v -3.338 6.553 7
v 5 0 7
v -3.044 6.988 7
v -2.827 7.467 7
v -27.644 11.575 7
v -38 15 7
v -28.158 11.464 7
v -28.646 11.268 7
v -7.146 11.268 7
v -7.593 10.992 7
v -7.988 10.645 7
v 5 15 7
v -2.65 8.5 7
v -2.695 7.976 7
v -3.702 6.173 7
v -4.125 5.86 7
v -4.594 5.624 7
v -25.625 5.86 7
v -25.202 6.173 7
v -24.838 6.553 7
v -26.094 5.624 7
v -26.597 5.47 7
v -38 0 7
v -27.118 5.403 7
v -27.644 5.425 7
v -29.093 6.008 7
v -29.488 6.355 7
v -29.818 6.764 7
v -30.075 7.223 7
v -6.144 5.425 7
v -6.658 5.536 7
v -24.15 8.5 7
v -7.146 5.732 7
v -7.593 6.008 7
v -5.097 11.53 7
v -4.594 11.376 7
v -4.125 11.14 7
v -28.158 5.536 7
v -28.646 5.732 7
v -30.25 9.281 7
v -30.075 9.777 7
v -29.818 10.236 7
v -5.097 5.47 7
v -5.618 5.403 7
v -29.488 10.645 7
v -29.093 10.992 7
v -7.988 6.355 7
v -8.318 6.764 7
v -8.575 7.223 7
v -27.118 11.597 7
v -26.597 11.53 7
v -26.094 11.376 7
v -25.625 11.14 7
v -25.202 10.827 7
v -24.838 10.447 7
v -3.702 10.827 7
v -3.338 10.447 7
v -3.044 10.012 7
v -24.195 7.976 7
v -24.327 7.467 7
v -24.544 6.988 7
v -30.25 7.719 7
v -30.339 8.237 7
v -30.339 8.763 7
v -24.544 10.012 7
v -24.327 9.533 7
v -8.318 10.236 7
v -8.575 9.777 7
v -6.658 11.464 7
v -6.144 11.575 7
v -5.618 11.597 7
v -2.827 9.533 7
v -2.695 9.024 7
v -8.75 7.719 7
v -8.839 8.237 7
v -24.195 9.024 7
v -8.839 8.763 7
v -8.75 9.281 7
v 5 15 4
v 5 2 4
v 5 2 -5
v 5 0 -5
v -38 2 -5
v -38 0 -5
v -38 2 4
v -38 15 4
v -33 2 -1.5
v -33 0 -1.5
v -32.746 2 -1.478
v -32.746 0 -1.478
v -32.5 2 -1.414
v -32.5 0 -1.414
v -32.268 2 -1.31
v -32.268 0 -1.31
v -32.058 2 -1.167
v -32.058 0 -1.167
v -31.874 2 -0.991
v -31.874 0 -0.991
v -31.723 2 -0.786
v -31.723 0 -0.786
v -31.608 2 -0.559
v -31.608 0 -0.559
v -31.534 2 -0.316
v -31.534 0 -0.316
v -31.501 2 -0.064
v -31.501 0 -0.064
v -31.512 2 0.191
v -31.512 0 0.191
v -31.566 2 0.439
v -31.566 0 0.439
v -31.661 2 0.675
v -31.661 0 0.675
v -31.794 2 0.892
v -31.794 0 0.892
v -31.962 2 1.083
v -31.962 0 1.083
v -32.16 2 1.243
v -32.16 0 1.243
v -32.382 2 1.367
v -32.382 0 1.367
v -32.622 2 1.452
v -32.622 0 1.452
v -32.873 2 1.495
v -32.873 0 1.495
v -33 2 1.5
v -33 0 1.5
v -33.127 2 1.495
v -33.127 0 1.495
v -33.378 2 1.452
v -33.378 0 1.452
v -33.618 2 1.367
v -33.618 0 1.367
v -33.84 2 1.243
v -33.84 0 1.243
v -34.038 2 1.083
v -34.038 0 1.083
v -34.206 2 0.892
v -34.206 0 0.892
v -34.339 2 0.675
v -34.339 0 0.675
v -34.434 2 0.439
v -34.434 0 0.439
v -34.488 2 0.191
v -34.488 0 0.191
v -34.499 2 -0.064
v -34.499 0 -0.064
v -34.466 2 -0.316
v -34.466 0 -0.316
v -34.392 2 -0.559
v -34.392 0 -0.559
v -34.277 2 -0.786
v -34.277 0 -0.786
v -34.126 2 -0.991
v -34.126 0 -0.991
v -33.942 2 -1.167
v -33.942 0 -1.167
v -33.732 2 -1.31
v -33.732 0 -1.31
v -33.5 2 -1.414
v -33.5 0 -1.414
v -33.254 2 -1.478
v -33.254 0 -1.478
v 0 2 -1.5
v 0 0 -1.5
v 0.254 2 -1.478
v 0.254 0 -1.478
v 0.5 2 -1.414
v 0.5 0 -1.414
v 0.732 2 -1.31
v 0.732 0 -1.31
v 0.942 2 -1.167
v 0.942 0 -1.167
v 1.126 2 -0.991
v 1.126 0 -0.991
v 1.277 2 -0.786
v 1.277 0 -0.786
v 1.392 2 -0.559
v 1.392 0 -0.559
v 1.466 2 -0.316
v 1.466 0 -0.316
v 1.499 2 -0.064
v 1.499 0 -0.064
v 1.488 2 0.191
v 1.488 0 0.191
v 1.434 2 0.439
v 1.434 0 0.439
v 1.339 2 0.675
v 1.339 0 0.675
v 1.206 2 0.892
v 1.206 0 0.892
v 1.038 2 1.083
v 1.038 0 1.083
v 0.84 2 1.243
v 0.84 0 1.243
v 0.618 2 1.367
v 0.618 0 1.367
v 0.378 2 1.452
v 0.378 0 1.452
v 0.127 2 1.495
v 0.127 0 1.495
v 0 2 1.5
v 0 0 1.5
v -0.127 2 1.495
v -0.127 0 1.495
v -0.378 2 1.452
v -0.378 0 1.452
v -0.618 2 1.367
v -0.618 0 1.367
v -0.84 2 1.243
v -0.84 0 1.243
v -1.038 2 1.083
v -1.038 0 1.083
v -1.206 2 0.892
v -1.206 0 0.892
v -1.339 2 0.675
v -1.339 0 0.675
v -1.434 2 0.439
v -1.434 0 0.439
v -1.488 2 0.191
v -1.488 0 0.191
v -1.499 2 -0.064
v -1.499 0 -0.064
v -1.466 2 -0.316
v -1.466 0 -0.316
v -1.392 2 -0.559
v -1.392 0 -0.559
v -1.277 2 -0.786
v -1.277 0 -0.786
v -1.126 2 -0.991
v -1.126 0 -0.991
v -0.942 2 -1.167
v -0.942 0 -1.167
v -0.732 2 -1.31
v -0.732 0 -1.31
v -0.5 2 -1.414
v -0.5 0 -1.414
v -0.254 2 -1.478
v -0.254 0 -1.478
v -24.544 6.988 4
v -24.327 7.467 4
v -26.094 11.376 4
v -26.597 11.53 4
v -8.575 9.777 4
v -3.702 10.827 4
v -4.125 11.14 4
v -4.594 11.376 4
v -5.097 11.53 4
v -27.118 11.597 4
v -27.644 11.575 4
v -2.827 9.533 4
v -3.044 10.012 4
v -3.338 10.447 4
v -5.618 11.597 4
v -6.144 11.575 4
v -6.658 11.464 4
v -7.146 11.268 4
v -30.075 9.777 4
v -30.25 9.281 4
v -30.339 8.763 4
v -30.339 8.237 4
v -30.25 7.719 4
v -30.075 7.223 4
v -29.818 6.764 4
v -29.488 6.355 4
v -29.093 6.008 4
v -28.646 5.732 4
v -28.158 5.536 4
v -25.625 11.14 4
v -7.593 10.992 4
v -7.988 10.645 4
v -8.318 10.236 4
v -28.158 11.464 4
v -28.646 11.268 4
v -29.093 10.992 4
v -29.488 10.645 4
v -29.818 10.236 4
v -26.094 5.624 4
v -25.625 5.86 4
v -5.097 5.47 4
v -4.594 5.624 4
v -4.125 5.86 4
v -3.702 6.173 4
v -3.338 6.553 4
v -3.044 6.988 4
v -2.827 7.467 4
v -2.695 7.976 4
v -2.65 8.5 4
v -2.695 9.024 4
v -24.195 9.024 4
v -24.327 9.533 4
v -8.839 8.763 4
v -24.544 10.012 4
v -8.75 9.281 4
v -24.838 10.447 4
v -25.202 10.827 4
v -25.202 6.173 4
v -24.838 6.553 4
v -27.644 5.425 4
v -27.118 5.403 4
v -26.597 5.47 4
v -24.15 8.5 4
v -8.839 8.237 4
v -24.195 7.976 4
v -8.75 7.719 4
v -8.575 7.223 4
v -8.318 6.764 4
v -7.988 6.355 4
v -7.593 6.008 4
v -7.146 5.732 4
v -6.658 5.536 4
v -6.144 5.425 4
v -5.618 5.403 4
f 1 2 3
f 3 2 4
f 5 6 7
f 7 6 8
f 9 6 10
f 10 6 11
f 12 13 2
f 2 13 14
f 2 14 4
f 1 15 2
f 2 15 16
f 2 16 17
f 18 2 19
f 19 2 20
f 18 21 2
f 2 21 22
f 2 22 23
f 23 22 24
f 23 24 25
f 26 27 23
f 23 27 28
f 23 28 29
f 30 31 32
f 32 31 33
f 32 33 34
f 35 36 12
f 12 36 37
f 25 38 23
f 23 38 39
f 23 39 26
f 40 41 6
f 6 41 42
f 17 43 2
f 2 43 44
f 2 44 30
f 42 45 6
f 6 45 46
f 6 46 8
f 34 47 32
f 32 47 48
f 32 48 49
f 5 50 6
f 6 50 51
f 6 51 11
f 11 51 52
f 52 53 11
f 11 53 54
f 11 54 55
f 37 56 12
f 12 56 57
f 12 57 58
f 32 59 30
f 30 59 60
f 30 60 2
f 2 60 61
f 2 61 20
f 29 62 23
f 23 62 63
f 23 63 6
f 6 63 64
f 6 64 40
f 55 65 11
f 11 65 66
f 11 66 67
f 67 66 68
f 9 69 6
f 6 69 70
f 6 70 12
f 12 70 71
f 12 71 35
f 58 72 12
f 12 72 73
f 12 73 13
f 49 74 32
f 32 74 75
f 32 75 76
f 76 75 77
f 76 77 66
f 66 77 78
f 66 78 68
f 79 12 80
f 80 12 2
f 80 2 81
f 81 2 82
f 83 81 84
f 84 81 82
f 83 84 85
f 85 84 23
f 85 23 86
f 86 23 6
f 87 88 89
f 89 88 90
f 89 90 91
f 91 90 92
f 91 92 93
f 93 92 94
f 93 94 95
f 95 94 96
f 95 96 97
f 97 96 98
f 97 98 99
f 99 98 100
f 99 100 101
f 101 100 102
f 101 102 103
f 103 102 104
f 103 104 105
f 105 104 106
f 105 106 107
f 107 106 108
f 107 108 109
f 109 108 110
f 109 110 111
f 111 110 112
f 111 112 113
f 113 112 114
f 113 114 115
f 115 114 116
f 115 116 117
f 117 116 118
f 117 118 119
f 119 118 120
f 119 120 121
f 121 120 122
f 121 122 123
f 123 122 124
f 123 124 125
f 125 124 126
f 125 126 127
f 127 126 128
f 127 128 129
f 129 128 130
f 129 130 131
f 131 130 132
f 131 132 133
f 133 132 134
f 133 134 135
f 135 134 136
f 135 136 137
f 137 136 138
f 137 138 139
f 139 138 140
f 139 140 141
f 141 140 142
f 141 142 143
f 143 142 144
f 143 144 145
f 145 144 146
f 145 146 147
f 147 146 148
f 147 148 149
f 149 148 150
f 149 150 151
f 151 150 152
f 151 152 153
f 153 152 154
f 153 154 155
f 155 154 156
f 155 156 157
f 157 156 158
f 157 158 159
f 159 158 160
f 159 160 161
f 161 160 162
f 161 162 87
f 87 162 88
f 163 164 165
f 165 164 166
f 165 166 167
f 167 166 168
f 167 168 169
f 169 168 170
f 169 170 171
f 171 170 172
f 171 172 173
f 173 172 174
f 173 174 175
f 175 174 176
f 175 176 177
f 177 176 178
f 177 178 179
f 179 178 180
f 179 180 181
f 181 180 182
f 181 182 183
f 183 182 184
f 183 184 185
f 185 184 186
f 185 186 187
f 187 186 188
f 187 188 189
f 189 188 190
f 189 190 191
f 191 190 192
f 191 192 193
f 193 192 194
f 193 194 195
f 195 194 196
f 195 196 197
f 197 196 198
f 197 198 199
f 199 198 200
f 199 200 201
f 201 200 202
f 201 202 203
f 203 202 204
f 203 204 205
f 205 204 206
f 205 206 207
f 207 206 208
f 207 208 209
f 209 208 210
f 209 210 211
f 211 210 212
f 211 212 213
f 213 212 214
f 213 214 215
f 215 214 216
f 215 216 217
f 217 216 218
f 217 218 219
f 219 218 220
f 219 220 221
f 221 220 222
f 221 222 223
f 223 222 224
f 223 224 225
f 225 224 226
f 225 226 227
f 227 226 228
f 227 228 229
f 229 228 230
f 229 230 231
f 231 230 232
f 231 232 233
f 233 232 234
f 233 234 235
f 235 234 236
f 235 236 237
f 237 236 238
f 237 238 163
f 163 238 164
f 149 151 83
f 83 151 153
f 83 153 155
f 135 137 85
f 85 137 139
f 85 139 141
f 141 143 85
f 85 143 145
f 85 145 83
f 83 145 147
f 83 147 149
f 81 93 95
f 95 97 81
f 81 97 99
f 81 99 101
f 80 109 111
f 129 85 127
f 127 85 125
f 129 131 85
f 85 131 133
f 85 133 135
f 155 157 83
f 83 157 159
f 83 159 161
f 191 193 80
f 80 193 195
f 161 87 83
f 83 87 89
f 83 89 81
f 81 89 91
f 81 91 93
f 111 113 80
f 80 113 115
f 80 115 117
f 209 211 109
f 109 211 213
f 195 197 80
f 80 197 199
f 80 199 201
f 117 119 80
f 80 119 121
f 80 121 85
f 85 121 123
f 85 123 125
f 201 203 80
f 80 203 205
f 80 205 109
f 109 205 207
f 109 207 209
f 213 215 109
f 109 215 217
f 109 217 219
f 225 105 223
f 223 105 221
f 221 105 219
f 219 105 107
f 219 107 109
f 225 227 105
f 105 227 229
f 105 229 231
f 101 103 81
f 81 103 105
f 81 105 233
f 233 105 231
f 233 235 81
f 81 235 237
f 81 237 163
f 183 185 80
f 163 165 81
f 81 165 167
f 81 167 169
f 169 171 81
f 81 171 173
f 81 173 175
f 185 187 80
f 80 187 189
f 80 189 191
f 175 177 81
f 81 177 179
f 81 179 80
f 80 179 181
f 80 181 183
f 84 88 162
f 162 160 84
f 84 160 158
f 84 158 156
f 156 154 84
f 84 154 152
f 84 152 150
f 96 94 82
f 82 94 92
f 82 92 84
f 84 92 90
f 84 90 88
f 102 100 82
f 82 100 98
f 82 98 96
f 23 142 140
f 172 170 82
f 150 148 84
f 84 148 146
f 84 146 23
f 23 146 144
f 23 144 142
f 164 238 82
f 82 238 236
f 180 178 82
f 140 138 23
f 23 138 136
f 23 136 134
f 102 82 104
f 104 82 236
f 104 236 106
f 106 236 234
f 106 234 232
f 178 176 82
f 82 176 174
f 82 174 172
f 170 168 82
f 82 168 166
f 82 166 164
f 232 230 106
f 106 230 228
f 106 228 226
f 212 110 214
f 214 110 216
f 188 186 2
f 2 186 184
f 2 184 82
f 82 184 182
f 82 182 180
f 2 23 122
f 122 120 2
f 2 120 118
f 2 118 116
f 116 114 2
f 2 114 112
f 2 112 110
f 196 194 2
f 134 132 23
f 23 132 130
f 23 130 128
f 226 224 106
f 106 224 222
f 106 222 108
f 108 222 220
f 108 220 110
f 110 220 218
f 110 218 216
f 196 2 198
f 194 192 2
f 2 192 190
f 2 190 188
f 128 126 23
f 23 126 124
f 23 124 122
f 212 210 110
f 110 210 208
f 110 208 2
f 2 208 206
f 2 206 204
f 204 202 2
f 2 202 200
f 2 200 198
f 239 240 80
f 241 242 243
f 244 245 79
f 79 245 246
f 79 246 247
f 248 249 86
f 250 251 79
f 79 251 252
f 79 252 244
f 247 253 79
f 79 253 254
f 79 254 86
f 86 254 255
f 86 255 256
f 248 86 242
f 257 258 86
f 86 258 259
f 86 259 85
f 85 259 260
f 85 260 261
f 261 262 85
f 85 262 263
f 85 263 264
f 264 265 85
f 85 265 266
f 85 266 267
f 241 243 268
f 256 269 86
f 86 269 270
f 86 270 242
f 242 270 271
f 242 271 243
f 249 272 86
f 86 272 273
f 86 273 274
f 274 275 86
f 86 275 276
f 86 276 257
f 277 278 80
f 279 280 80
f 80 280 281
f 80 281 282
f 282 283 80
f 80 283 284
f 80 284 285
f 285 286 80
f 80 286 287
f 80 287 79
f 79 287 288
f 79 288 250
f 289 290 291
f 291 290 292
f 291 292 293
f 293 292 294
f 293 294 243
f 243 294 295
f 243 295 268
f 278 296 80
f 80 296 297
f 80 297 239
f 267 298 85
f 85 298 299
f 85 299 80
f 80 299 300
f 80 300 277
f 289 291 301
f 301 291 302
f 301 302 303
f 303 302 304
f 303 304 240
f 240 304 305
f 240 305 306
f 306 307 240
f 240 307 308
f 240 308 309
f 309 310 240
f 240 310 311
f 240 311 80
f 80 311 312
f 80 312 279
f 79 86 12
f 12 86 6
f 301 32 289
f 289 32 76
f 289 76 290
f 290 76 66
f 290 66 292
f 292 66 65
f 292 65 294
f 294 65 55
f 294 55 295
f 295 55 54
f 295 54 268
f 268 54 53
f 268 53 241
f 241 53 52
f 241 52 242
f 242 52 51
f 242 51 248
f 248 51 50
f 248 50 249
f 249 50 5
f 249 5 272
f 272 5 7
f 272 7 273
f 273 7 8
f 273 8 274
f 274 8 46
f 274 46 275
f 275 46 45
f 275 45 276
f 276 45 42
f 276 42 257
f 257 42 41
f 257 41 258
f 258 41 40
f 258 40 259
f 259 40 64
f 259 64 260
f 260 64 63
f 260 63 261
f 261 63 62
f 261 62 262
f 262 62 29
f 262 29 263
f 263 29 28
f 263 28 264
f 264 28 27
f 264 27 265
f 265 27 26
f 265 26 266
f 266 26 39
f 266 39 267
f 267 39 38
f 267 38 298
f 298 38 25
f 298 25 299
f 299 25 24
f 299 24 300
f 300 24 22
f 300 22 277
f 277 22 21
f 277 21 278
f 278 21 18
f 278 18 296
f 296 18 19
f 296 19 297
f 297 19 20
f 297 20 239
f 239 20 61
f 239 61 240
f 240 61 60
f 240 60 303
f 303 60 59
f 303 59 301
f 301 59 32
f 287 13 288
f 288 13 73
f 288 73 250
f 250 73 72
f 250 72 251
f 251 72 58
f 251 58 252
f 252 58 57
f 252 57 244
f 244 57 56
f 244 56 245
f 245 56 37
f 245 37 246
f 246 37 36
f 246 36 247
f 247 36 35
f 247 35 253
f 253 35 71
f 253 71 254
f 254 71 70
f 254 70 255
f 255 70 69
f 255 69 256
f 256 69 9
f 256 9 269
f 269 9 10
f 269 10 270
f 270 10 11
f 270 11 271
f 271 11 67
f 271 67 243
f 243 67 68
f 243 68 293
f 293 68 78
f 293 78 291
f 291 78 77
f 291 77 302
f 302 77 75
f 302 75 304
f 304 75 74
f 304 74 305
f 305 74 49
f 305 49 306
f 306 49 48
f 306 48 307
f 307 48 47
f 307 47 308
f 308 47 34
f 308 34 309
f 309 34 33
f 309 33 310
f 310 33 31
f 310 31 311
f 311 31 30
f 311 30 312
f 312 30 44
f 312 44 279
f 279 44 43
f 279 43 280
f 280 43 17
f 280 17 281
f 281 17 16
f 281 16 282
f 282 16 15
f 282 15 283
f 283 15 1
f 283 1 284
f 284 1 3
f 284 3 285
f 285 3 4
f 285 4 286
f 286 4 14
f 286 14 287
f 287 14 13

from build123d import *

# Parameters (mm, degrees)
SKETCH1_W           = 43
SKETCH1_H           = 12
SKETCH1_R           = 1.5
BOSS_EXTRUDE1_DEPTH = 2
SKETCH2_W           = 43
SKETCH2_H           = 3
BOSS_EXTRUDE2_DEPTH = 13
SKETCH3_R           = 3.1
CUT_EXTRUDE1_DEPTH  = 13


with BuildPart() as part:
    # Sketch1 → Boss-Extrude1 (new body)
    with BuildSketch(Plane(origin=(0, 0, 0), x_dir=(1, 0, 0), z_dir=(0, 1, 0))):
        with Locations((-16.5, -1)):
            Rectangle(SKETCH1_W, SKETCH1_H)
        with Locations((-33, 0)):
            Circle(SKETCH1_R, mode=Mode.SUBTRACT)
        Circle(SKETCH1_R, mode=Mode.SUBTRACT)
    extrude(amount=BOSS_EXTRUDE1_DEPTH)

    # Sketch2 → Boss-Extrude2 (add)
    with BuildSketch(Plane(origin=(0, 2, 0), x_dir=(1, 0, 0), z_dir=(0, 1, 0))):
        with Locations((-16.5, -5.5)):
            Rectangle(SKETCH2_W, SKETCH2_H)
    extrude(amount=BOSS_EXTRUDE2_DEPTH)

    # Sketch3 → Cut-Extrude1 (cut)
    with BuildSketch(Plane.XY.offset(7)):
        with Locations((-27.25, 8.5)):
            Circle(SKETCH3_R)
        with Locations((-5.75, 8.5)):
            Circle(SKETCH3_R)
    extrude(amount=-CUT_EXTRUDE1_DEPTH, mode=Mode.SUBTRACT)


solid = part.part
